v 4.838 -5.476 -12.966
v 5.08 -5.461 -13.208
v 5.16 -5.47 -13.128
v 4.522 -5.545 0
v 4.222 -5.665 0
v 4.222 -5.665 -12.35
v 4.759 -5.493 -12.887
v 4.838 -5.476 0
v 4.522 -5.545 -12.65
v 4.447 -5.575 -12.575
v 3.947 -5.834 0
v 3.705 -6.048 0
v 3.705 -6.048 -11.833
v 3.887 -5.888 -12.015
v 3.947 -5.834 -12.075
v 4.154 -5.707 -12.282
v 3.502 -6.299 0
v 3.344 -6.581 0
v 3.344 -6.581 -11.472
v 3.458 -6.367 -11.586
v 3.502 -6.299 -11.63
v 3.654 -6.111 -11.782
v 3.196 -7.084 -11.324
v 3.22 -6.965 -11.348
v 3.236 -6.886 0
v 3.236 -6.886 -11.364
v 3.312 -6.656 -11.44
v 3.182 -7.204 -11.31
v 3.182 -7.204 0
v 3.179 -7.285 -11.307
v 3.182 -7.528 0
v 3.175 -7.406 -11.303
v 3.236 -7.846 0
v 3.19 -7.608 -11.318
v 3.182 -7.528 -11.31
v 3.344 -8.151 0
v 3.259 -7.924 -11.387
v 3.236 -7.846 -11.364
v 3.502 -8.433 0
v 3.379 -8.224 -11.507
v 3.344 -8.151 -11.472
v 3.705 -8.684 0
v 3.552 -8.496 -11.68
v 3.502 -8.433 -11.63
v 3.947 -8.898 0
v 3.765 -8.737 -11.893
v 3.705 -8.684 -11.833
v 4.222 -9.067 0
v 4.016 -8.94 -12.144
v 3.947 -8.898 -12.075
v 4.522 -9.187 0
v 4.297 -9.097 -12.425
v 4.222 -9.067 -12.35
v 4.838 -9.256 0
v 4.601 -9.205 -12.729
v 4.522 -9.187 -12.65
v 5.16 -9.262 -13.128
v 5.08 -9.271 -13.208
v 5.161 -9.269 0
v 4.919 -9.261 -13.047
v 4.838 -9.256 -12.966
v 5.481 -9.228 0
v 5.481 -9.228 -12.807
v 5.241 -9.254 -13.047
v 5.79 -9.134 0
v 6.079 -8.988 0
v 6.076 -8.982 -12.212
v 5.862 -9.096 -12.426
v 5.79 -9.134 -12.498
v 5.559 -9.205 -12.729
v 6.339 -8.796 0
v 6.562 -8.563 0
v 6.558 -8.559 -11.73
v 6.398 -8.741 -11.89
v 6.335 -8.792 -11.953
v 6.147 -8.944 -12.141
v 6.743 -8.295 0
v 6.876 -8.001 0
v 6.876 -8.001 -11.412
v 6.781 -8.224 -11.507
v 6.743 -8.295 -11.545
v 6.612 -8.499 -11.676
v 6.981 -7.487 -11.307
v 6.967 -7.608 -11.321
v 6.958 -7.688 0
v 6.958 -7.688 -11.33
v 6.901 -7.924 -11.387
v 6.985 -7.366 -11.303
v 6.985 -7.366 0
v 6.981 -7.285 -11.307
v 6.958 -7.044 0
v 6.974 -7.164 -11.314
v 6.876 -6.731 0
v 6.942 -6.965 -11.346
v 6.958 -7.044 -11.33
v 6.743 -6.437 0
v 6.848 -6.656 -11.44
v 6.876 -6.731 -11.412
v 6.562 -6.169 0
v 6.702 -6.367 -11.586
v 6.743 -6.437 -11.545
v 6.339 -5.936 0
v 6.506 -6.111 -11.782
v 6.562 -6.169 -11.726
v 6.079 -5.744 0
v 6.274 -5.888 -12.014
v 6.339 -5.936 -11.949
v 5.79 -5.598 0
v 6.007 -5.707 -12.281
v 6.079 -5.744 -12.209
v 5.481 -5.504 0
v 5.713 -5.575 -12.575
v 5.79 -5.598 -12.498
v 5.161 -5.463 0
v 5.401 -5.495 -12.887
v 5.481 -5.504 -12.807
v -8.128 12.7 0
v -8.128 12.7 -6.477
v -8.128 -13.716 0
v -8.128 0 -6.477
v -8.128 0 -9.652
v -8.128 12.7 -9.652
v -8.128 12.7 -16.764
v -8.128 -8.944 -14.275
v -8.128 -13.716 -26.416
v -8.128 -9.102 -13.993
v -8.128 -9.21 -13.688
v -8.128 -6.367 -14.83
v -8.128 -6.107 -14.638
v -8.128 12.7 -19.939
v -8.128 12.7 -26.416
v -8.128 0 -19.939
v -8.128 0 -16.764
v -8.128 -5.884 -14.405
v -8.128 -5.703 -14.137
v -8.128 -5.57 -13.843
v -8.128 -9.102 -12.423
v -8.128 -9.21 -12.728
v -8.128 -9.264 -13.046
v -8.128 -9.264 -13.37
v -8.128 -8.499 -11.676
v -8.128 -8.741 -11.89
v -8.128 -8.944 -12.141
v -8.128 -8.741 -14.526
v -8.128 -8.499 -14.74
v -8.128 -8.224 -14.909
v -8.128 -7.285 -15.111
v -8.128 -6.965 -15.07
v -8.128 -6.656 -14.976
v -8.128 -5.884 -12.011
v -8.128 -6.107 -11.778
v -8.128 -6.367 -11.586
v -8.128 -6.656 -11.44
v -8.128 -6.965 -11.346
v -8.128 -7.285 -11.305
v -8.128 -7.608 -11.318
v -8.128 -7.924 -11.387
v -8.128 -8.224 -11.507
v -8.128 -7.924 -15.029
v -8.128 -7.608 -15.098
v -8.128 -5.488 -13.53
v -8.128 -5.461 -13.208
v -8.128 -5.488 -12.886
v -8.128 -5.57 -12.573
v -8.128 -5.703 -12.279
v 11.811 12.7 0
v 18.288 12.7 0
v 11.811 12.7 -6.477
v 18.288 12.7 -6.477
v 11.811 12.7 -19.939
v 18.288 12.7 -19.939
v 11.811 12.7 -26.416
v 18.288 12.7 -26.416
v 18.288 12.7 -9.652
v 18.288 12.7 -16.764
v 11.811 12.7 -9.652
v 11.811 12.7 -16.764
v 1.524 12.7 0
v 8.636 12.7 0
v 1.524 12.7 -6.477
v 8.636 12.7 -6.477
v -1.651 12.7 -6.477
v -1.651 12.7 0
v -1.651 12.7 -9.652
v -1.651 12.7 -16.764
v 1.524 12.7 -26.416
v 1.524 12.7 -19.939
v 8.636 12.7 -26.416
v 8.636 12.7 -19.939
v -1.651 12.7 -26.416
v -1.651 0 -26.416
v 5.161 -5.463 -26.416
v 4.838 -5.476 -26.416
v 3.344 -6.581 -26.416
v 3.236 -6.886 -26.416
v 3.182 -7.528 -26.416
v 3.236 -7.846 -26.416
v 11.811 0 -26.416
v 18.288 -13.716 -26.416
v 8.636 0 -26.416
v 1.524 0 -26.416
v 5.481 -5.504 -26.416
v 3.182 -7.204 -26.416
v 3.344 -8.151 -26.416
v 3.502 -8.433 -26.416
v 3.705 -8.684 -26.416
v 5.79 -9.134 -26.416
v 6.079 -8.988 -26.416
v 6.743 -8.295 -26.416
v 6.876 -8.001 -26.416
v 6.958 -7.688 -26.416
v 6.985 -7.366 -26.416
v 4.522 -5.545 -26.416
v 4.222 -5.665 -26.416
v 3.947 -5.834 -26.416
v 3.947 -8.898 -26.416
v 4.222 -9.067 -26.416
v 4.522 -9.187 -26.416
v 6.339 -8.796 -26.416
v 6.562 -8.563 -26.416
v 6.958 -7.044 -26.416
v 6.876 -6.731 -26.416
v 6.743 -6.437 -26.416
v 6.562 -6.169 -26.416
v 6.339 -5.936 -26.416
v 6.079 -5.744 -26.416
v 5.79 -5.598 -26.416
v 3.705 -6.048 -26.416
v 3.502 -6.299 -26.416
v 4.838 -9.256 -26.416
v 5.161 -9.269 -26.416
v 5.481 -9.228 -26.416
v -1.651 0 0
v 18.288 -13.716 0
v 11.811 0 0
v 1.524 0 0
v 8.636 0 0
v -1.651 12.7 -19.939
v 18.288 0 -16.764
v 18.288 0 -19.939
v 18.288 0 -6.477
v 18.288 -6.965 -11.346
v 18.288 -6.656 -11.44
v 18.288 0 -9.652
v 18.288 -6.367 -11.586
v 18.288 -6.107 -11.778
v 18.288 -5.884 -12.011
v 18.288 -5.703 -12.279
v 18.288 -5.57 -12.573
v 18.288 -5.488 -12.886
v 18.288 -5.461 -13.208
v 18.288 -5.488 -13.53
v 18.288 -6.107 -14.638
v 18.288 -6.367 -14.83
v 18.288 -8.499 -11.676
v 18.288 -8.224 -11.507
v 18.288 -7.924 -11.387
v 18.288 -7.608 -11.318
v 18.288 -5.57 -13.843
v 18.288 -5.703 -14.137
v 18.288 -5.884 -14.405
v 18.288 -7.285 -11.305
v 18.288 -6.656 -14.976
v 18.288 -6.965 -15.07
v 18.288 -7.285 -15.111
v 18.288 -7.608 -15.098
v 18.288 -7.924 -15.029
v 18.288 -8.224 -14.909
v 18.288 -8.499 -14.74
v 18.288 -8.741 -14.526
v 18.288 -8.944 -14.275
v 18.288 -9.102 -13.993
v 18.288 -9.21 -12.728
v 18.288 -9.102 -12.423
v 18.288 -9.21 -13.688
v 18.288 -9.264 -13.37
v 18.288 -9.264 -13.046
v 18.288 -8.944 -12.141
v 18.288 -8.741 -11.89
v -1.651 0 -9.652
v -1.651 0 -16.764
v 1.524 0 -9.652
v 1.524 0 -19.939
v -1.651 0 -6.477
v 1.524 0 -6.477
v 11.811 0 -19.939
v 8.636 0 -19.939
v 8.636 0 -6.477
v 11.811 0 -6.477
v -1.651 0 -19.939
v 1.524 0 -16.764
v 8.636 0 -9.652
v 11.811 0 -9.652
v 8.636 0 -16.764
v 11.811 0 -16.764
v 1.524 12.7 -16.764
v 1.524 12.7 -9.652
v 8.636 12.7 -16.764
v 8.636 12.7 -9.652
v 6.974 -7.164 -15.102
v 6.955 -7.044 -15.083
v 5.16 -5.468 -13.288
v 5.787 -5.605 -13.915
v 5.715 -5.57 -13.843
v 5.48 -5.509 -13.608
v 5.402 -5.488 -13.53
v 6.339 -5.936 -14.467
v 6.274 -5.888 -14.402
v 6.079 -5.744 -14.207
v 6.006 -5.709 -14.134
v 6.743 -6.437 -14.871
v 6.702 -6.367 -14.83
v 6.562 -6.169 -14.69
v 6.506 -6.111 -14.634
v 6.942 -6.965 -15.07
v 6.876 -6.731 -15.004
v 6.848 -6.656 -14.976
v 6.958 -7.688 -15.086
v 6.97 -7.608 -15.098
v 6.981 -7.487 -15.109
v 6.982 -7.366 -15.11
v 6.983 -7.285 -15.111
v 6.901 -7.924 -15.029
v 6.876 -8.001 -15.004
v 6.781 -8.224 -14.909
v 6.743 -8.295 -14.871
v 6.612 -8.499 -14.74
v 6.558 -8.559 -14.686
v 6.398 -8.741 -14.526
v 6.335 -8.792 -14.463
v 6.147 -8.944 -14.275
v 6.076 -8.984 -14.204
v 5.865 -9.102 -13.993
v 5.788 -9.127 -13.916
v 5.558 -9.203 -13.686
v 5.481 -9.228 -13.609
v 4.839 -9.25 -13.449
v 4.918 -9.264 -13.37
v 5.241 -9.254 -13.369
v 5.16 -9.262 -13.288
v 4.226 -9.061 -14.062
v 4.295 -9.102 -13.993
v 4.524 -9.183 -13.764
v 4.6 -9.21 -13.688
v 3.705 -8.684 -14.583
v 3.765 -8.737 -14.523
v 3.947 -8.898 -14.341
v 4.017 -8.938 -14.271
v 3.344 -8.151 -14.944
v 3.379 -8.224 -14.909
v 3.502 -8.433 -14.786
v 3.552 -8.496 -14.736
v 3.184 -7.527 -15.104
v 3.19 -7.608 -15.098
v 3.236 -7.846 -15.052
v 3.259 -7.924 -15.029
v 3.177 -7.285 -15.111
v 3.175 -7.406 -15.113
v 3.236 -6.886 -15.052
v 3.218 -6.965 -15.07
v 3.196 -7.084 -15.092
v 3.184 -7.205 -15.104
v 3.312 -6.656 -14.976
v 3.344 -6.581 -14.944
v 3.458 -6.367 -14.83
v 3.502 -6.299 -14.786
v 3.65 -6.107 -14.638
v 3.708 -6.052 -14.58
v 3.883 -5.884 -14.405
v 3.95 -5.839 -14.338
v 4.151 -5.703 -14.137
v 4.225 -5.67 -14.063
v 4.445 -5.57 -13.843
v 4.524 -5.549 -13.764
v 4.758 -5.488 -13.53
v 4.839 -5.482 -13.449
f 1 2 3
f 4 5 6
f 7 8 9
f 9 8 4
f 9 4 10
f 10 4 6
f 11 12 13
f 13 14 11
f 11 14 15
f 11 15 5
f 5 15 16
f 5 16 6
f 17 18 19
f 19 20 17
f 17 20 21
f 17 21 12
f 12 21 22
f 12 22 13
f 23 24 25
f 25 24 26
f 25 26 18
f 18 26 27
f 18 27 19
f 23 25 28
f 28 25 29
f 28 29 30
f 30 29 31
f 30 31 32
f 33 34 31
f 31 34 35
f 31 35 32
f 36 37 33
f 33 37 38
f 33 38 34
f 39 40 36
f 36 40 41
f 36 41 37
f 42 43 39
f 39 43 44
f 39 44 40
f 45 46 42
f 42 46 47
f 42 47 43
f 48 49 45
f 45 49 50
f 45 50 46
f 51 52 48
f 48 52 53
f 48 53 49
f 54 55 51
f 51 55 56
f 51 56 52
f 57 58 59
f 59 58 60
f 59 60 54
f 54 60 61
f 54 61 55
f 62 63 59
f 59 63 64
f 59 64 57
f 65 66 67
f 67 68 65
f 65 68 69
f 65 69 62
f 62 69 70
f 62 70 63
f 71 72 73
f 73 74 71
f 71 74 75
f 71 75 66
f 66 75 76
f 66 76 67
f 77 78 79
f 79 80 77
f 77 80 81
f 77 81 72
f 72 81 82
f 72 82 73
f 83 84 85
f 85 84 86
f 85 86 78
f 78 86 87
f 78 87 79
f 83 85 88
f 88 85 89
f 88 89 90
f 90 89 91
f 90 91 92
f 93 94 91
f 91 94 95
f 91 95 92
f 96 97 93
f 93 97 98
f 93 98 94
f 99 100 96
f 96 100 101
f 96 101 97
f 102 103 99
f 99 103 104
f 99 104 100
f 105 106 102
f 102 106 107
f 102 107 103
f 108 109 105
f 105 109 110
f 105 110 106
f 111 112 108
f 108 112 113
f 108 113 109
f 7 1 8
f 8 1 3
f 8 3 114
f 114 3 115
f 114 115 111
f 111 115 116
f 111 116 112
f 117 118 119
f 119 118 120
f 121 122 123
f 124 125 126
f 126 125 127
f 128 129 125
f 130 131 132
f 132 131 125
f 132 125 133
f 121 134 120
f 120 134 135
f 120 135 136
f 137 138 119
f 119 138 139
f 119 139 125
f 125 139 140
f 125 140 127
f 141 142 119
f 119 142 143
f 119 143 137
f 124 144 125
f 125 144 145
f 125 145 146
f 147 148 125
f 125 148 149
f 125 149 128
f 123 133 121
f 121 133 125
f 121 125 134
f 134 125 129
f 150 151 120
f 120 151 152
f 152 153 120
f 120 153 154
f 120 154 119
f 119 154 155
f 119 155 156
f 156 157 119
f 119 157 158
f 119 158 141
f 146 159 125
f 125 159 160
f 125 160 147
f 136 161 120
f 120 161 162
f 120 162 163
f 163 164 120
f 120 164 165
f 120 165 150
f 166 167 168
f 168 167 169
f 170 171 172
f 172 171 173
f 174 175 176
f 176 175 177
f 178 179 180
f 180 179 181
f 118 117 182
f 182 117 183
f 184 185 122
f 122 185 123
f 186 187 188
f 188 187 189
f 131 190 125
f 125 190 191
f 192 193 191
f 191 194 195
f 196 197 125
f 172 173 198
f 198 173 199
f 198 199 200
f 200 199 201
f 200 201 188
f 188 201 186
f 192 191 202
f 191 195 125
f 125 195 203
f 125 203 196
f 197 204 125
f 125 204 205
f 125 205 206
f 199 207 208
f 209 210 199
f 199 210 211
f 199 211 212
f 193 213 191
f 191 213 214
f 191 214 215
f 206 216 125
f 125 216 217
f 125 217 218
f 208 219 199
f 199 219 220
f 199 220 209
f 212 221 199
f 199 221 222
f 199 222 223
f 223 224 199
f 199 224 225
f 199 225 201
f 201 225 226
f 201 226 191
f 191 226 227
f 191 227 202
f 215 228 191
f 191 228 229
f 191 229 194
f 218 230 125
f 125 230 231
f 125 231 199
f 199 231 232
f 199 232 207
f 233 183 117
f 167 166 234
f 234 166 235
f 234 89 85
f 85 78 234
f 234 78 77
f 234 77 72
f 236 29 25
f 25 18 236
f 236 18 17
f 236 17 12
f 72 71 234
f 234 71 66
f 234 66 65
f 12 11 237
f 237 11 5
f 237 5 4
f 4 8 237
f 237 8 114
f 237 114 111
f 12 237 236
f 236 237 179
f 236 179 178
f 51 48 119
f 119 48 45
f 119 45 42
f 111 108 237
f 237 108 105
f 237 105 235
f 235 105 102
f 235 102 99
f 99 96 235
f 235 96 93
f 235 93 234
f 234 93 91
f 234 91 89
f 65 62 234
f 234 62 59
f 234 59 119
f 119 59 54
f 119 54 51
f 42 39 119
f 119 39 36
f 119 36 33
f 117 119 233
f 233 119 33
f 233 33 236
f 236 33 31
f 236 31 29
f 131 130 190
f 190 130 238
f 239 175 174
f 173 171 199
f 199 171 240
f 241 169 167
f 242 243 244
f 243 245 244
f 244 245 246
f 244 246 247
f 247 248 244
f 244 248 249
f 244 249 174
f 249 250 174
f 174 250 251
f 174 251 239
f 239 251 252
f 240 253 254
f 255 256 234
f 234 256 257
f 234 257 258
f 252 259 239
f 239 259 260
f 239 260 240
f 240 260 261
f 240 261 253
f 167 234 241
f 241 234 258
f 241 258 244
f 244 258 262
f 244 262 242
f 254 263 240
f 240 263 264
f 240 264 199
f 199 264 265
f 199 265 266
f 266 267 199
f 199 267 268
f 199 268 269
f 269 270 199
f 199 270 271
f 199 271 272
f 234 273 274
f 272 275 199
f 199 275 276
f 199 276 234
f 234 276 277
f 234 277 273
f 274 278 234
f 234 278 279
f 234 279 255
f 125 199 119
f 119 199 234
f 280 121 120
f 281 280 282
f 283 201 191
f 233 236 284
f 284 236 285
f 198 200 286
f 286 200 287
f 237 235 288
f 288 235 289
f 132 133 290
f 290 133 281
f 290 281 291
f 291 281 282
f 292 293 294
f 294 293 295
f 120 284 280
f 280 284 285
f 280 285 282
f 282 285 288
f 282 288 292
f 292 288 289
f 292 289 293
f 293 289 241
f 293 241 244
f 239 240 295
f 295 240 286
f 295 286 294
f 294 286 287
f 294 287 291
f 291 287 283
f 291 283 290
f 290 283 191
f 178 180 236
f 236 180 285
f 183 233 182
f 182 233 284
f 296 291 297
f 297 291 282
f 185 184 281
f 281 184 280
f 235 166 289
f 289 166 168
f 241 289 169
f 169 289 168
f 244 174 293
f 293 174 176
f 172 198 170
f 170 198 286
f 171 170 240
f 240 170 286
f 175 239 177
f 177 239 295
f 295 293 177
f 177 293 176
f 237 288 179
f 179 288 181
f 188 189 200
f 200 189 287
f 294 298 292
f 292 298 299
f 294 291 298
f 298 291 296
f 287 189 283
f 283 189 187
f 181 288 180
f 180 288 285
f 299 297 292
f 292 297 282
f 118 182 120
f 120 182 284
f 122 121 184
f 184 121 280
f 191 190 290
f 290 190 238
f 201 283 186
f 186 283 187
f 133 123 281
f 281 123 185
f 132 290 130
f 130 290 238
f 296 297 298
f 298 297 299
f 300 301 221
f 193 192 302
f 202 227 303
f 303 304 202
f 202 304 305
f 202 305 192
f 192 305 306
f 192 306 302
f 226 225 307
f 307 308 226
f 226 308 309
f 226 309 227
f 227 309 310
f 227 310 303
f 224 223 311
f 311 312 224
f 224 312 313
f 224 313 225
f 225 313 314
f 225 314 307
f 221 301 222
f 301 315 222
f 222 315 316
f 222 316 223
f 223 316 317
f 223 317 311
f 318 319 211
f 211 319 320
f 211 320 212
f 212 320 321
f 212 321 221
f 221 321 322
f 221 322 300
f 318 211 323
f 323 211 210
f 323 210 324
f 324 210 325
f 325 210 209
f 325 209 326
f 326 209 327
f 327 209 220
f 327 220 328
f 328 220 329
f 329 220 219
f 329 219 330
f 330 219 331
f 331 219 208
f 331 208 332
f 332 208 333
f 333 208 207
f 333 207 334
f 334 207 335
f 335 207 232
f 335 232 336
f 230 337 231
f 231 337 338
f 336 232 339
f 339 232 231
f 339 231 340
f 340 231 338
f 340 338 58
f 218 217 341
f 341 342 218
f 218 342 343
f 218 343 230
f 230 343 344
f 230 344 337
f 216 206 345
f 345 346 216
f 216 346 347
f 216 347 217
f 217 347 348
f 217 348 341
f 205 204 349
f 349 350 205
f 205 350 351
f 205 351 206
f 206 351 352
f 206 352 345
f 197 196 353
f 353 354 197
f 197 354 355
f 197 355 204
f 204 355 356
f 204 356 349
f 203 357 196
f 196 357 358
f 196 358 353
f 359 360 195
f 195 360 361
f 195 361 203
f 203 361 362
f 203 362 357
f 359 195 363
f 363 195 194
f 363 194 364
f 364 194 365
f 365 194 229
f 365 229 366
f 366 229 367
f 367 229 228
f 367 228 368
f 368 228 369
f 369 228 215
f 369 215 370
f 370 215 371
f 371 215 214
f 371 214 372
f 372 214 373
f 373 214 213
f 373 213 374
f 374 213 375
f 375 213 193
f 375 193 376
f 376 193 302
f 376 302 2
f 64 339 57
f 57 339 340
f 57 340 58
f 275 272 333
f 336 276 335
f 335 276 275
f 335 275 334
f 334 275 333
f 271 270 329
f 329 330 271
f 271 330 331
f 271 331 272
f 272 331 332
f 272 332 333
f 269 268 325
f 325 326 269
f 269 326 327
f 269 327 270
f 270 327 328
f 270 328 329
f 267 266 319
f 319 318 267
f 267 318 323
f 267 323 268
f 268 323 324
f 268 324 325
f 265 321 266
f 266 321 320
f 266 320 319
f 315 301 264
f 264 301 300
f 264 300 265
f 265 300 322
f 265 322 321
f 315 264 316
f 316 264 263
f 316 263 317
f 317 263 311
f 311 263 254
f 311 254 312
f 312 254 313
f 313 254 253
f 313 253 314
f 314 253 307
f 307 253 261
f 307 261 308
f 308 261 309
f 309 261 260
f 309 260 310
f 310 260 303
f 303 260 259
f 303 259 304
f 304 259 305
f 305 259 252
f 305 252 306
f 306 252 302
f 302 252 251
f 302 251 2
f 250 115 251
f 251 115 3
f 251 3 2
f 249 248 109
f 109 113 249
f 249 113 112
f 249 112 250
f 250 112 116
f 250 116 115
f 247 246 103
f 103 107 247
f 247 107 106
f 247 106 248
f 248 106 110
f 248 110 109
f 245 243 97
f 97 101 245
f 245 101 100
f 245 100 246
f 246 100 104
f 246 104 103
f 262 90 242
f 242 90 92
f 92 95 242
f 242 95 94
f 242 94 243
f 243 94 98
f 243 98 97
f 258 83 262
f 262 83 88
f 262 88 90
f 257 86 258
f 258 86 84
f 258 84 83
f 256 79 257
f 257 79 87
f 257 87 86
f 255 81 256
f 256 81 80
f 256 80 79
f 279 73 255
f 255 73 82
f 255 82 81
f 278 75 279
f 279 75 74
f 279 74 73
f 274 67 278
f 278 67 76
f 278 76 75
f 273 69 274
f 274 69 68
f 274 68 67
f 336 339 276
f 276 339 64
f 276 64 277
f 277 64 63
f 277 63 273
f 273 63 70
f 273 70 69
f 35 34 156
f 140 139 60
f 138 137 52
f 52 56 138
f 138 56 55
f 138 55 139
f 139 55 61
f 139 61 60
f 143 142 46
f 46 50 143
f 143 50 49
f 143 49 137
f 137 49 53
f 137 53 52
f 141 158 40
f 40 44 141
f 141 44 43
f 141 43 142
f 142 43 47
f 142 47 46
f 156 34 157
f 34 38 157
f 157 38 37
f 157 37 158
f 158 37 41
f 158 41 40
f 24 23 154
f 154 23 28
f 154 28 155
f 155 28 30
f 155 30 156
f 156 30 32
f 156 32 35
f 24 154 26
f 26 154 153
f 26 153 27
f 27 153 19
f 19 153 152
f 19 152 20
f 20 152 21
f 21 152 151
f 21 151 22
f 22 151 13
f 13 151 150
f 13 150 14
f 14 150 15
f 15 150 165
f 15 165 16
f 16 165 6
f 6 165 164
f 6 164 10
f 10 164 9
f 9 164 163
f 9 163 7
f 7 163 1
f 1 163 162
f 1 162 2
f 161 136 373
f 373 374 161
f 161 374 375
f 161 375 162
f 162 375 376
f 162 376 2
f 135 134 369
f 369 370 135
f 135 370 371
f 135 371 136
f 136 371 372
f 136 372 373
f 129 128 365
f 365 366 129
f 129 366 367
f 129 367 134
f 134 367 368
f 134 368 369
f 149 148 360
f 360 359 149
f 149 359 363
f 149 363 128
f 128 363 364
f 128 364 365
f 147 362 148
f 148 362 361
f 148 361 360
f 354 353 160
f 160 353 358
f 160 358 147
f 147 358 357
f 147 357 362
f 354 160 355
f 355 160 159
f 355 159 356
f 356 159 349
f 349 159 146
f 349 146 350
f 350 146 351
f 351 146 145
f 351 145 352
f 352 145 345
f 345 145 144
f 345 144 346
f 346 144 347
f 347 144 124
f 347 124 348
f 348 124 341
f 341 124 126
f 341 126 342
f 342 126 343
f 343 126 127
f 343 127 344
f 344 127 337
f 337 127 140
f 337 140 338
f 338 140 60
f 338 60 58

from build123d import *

# Parameters (mm, degrees)
SKETCH2_W           = 26.416
SKETCH2_H           = 26.416
BOSS_EXTRUDE1_DEPTH = 26.416
SKETCH4_W           = 3.175
SKETCH4_H           = 26.416
SKETCH4_W_2         = 26.416
SKETCH4_H_2         = 3.175
CUT_EXTRUDE3_DEPTH  = 12.7
SKETCH7_R           = 1.905
CUT_EXTRUDE5_DEPTH  = 35.934004294
SKETCH8_R           = 1.905
CUT_EXTRUDE6_DEPTH  = 40.796215498


with BuildPart() as part:
    # Sketch2 → Boss-Extrude1 (new body)
    with BuildSketch(Plane.XY):
        with Locations((5.08, -0.508)):
            Rectangle(SKETCH2_W, SKETCH2_H)
    extrude(amount=-BOSS_EXTRUDE1_DEPTH)

    # Sketch4 → Cut-Extrude3 (cut)
    with BuildSketch(Plane(origin=(0, 12.7, 0), x_dir=(1, 0, 0), z_dir=(0, 1, 0))):
        with Locations((-0.0635, 13.208)):
            Rectangle(SKETCH4_W, SKETCH4_H)
        with Locations((10.2235, 13.208)):
            Rectangle(SKETCH4_W, SKETCH4_H)
        with Locations((5.08, 18.3515)):
            Rectangle(SKETCH4_W_2, SKETCH4_H_2)
        with Locations((5.08, 8.0645)):
            Rectangle(SKETCH4_W_2, SKETCH4_H_2)
    extrude(amount=-CUT_EXTRUDE3_DEPTH, mode=Mode.SUBTRACT)

    # Sketch7 → Cut-Extrude5 (cut, through all)
    with BuildSketch(Plane.XY):
        with Locations((5.08, -7.366)):
            Circle(SKETCH7_R)
    extrude(amount=-CUT_EXTRUDE5_DEPTH, mode=Mode.SUBTRACT)

    # Sketch8 → Cut-Extrude6 (cut, through all)
    with BuildSketch(Plane(origin=(18.288, 0, 0), x_dir=(0, 0, -1), z_dir=(1, 0, 0))):
        with Locations(Location((13.208, -7.366, 0), (0, 0, 90))):
            Circle(SKETCH8_R)
    extrude(amount=-CUT_EXTRUDE6_DEPTH, mode=Mode.SUBTRACT)


solid = part.part
